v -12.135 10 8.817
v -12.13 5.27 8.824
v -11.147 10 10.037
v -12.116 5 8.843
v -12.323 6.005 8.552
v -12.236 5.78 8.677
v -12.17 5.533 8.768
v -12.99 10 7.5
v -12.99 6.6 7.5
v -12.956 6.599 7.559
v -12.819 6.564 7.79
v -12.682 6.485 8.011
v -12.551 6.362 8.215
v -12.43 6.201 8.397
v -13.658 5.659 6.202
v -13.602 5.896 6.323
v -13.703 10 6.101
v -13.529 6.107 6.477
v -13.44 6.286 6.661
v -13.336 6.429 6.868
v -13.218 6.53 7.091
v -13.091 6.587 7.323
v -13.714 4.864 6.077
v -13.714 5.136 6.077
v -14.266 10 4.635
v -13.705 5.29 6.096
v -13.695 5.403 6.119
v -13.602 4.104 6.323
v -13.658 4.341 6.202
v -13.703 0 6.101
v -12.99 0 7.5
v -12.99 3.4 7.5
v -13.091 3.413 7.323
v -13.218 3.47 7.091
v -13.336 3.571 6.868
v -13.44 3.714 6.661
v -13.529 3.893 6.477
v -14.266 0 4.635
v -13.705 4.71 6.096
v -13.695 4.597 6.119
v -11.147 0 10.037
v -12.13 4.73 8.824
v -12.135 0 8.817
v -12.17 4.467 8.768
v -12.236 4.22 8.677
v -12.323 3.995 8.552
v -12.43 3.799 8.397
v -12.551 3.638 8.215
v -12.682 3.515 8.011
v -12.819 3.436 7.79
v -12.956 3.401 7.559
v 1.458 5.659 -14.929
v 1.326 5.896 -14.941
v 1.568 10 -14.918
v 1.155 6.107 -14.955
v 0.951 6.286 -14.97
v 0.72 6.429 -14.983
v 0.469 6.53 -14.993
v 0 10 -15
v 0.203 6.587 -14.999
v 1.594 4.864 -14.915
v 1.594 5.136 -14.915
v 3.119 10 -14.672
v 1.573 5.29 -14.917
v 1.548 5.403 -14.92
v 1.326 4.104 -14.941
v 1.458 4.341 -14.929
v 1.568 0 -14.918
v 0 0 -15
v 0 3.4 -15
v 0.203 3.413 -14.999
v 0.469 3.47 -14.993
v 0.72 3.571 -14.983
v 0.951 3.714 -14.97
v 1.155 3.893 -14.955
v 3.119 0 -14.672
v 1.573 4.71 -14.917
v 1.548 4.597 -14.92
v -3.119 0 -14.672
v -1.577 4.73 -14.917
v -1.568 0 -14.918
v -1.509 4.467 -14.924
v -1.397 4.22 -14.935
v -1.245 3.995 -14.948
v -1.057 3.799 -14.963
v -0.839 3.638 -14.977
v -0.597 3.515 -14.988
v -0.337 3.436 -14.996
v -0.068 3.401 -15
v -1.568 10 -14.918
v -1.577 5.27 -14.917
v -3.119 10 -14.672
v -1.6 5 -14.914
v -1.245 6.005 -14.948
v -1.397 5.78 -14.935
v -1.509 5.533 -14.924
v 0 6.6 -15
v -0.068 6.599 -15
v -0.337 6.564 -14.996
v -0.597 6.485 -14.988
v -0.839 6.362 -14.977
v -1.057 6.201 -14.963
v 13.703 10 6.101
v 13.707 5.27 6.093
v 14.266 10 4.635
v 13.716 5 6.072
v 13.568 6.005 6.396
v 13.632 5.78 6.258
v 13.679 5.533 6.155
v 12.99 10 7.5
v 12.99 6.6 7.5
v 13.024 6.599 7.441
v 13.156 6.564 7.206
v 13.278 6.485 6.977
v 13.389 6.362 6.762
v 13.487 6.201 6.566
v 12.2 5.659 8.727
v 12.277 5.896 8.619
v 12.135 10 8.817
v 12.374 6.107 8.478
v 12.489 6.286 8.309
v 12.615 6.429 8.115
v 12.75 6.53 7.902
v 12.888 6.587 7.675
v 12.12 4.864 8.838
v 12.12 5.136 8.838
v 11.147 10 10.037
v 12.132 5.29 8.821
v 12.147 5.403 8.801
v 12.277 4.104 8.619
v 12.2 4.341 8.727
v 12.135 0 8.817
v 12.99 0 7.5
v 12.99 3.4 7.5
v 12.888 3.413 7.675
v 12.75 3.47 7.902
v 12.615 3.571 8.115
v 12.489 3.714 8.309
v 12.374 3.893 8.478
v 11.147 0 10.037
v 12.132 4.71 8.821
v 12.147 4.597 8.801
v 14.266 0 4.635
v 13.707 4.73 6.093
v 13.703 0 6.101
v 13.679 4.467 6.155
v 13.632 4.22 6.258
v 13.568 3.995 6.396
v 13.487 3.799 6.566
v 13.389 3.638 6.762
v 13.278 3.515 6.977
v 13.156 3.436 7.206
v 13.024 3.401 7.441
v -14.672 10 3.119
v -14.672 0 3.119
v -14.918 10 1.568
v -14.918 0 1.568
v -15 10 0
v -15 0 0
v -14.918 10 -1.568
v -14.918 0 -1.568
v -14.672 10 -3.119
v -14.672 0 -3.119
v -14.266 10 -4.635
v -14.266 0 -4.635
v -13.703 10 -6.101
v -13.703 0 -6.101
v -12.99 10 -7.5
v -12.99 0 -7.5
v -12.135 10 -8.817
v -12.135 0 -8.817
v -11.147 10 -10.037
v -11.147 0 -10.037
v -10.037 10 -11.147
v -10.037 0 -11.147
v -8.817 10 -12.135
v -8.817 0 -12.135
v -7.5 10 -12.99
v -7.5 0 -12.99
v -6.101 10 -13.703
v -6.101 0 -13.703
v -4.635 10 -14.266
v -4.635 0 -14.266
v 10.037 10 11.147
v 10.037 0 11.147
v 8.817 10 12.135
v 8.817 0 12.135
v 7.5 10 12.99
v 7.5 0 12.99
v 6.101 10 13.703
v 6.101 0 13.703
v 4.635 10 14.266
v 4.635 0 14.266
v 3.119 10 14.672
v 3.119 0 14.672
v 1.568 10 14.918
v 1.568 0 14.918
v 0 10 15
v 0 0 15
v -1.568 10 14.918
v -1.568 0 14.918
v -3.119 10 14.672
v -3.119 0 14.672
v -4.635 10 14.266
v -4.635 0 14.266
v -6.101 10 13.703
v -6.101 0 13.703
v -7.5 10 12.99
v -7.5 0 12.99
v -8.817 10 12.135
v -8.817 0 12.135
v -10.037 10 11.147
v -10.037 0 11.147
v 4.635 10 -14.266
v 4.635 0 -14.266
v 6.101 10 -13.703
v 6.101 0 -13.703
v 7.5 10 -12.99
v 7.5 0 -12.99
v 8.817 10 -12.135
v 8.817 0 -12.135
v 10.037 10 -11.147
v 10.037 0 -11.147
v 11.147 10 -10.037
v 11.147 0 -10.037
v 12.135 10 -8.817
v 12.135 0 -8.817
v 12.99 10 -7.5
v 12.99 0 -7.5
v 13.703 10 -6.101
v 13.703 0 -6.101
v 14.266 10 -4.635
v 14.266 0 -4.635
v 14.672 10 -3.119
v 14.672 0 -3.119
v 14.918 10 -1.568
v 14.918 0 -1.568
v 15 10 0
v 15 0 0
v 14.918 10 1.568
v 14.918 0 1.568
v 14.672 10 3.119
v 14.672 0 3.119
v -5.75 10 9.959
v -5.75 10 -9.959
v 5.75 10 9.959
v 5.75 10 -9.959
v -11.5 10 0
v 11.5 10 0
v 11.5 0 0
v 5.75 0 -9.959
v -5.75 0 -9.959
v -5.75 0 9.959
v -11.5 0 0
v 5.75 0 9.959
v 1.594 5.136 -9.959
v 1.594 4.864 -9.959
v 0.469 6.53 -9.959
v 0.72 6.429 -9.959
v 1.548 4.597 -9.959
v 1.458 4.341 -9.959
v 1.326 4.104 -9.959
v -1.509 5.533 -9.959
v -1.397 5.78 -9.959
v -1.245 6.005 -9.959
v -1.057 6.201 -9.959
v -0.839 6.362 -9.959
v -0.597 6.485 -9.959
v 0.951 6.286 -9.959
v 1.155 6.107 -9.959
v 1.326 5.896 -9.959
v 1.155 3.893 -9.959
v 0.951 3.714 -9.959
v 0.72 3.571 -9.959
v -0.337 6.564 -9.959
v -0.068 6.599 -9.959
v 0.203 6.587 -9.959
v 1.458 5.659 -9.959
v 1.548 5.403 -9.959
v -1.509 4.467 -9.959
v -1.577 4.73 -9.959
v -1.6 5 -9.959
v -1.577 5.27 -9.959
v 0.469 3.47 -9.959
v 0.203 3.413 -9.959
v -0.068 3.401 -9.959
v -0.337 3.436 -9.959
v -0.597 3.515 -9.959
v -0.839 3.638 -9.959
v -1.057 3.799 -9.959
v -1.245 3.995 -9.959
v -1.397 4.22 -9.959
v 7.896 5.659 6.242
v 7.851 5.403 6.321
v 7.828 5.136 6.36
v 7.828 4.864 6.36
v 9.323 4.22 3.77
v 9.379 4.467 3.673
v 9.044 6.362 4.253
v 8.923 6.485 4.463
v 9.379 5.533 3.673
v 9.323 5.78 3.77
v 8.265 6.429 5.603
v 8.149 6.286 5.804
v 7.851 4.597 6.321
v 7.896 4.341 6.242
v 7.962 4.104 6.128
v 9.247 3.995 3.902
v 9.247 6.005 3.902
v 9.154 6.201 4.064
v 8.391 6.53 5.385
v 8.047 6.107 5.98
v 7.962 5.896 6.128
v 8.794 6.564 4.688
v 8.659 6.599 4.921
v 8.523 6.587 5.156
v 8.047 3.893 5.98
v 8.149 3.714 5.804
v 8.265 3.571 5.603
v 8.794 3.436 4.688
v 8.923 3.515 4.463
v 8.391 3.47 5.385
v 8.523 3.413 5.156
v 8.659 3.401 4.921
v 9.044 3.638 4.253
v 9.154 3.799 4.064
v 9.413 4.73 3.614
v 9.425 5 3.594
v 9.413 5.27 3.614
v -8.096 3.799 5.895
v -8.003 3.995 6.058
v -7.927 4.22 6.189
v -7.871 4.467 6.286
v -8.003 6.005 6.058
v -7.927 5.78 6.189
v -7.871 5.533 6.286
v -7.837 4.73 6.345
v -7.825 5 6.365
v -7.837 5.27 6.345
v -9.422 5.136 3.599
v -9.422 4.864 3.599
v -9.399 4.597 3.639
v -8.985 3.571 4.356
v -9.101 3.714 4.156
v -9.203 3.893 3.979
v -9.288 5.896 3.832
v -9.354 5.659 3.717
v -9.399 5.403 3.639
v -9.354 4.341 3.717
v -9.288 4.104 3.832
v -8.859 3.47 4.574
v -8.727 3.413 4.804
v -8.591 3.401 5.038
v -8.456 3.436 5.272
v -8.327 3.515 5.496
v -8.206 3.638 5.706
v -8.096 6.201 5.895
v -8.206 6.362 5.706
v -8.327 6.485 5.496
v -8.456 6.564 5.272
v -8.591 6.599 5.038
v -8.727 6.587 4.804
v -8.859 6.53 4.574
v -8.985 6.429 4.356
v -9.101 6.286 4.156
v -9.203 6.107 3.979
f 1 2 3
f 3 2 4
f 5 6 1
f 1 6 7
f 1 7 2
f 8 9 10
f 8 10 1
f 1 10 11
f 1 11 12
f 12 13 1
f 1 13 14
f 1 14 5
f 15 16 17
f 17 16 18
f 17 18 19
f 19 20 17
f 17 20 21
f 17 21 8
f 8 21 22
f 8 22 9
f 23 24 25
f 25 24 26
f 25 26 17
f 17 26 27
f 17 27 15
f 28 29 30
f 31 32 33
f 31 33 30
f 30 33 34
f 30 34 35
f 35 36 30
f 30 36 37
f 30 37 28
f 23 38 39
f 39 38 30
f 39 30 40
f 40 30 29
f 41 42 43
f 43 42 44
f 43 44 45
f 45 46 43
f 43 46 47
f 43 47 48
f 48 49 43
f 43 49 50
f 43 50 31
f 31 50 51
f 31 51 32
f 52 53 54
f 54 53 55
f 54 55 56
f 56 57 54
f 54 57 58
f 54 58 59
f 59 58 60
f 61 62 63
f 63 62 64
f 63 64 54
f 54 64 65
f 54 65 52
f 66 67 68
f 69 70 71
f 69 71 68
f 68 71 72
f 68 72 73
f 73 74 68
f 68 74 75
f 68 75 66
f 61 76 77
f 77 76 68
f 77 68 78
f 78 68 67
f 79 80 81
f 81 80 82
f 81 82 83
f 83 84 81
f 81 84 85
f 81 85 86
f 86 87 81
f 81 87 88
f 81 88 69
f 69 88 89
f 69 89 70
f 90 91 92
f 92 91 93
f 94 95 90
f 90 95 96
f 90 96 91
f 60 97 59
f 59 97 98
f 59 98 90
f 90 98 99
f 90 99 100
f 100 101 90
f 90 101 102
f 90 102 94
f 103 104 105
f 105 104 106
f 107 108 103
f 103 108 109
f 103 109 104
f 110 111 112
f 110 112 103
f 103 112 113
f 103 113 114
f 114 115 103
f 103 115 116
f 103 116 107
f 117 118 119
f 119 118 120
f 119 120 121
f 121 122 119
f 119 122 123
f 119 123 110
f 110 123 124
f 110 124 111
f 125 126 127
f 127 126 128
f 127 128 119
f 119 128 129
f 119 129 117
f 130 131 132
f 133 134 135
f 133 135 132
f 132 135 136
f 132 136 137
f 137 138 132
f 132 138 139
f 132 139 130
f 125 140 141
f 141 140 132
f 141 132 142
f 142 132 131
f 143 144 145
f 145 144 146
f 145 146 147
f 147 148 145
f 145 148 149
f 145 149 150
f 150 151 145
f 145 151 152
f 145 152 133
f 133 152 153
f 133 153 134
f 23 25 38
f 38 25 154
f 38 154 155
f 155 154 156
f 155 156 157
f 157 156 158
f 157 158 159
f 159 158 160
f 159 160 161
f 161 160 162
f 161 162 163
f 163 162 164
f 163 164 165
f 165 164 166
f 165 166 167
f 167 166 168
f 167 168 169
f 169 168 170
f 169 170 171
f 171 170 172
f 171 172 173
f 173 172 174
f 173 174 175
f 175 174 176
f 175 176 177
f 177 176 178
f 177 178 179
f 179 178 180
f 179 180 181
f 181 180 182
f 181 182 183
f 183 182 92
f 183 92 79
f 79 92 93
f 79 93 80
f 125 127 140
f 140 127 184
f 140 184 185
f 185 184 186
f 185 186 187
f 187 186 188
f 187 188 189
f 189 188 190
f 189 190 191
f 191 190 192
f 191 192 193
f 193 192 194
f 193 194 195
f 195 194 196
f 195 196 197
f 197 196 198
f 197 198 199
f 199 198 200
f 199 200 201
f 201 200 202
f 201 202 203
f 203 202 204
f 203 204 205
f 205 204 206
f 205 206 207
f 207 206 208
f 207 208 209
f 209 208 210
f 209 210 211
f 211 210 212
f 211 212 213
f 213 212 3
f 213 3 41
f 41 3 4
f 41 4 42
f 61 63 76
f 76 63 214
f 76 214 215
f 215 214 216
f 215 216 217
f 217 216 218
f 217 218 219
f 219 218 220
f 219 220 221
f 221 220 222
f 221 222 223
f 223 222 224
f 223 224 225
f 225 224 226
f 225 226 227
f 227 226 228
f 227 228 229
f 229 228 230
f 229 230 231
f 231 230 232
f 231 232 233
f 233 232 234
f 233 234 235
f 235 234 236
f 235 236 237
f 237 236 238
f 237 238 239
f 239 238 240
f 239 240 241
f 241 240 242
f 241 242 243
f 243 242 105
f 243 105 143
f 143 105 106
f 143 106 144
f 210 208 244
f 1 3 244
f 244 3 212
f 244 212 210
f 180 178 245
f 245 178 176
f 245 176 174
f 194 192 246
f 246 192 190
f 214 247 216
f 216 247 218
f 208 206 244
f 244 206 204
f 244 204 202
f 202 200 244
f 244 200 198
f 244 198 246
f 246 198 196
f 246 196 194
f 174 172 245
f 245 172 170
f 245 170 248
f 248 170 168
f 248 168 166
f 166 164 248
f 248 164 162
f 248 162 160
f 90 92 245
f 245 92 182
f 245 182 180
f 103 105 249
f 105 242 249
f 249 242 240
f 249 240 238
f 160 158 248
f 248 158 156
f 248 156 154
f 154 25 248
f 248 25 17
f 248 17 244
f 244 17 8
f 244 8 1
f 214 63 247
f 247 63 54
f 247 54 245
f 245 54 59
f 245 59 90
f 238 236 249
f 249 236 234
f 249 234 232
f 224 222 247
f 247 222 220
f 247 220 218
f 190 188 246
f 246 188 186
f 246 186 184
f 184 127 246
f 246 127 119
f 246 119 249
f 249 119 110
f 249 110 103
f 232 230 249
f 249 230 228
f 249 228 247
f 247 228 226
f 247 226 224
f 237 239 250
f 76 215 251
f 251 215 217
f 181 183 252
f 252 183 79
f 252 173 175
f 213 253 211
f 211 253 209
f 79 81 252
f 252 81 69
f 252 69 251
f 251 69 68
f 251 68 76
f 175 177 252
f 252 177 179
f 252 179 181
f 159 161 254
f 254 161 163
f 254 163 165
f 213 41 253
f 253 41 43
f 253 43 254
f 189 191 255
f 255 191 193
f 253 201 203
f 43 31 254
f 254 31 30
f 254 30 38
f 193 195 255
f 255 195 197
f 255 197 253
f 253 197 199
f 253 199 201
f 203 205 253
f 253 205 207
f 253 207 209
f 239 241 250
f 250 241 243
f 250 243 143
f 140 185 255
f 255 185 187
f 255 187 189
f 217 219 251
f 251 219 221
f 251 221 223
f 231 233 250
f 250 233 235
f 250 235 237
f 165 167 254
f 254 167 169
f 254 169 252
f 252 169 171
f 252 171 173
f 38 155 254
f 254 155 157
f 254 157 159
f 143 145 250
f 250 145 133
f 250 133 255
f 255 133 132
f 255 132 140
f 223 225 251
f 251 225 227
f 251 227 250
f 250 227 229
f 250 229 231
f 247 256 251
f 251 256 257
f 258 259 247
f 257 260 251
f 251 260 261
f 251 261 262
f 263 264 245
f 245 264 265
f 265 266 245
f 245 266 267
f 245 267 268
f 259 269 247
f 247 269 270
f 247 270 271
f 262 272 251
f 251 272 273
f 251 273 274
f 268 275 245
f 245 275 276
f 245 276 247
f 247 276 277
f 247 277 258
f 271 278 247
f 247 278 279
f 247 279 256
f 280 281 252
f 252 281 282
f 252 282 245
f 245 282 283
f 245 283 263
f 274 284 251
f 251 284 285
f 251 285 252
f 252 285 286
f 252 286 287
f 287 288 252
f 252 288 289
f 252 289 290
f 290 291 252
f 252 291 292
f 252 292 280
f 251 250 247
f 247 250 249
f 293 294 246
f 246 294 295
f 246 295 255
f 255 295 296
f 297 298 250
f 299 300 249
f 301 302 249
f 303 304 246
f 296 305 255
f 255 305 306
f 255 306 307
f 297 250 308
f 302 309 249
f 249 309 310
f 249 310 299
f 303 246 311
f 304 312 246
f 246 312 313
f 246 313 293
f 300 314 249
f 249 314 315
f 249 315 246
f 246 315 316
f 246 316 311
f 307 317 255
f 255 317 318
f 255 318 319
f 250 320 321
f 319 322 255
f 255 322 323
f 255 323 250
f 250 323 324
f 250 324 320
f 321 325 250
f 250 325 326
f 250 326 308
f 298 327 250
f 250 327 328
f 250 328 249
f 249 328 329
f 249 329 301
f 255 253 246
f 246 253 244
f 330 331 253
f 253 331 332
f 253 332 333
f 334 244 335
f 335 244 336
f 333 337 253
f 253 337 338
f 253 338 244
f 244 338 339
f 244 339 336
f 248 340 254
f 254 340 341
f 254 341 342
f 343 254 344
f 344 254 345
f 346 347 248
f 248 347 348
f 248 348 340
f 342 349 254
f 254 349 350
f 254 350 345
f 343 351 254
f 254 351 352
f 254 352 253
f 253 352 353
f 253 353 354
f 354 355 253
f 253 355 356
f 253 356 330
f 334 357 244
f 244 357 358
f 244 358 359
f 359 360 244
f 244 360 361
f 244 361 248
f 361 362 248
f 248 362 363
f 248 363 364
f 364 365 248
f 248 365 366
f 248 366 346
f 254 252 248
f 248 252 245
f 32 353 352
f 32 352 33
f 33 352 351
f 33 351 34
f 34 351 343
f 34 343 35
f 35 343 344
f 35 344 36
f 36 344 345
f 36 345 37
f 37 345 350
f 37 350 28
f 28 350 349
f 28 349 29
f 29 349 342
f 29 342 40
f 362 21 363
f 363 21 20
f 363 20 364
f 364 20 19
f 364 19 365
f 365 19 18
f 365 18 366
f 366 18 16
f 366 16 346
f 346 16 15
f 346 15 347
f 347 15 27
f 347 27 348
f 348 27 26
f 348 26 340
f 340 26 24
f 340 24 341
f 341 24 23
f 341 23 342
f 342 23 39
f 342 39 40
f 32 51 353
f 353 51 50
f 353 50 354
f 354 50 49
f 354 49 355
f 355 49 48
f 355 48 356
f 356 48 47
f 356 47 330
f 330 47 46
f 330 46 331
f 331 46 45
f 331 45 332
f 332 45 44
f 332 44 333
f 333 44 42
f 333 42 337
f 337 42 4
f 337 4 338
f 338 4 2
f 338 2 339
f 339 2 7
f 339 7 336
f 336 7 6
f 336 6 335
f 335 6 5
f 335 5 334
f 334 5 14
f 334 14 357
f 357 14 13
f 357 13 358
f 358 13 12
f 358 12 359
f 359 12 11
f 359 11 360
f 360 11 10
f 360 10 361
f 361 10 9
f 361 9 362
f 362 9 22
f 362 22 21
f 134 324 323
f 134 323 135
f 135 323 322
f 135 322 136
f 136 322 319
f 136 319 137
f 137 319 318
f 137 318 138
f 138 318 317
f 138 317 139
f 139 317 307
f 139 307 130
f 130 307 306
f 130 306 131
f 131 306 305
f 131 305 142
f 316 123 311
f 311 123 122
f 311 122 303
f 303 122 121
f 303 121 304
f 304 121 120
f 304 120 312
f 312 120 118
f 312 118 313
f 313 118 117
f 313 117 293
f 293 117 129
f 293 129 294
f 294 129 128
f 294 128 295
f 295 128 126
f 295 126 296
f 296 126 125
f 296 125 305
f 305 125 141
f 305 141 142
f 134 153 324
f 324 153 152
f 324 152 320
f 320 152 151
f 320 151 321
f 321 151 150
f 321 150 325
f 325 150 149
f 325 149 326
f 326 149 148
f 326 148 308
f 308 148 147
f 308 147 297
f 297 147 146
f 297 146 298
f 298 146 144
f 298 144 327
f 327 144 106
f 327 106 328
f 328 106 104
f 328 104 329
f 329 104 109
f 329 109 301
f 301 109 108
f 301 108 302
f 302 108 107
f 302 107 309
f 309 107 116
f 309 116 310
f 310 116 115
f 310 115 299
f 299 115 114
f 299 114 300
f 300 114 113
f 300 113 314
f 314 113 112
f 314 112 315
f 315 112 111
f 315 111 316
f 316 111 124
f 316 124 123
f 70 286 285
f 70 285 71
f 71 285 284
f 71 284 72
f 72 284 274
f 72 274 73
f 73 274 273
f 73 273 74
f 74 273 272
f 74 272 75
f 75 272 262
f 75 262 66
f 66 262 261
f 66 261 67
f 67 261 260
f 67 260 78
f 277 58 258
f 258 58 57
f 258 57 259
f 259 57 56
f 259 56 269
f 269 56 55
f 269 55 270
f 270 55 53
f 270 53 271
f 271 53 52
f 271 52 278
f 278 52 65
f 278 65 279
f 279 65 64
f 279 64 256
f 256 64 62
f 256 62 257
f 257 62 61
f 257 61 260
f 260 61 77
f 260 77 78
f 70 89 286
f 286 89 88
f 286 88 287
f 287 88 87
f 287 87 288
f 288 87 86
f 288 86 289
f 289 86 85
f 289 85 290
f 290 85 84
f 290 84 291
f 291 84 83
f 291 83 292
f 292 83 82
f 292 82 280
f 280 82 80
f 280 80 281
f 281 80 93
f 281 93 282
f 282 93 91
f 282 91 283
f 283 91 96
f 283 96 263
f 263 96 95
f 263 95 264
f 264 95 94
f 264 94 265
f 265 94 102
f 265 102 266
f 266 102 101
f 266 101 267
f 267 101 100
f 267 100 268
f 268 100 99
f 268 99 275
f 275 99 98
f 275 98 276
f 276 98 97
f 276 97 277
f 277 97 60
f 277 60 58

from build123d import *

# Parameters (mm, degrees)
SKETCH1_R           = 15
BOSS_EXTRUDE1_DEPTH = 10
CUT_EXTRUDE1_DEPTH  = 24.452078799
SKETCH4_R           = 1.6
CUT_EXTRUDE2_DEPTH  = 10
CIRPATTERN2_COUNT   = 3


with BuildPart() as part:
    # Sketch1 → Boss-Extrude1 (new body)
    with BuildSketch(Plane(origin=(0, 0, 0), x_dir=(1, 0, 0), z_dir=(0, 1, 0))):
        with Locations(Location((0, 0, 0), (0, 0, 270))):
            Circle(SKETCH1_R)
    extrude(amount=BOSS_EXTRUDE1_DEPTH)

    # Sketch2 → Cut-Extrude1 (cut, through all)
    with BuildSketch(Plane(origin=(0, 10, 0), x_dir=(1, 0, 0), z_dir=(0, 1, 0))):
        Polygon((11.5, 0), (5.75, 9.959292144), (-5.75, 9.959292144), (-11.5, 0), (-5.75, -9.959292144), (5.75, -9.959292144), align=None)
    extrude(amount=-CUT_EXTRUDE1_DEPTH, mode=Mode.SUBTRACT)

    # Sketch4 → Cut-Extrude2 (cut)
    with BuildSketch(Plane(origin=(-12.990381057, 0, 7.5), x_dir=(0.5000000000000002, 0, 0.8660254037844386), z_dir=(-0.8660254037844385, 0, 0.5000000000000001))):
        with Locations((0, 5)):
            Circle(SKETCH4_R)
    cut_extrude2 = extrude(amount=-CUT_EXTRUDE2_DEPTH, mode=Mode.SUBTRACT)

    # CirPattern2: Cut-Extrude2 ×3 about axis
    cirpattern2_axis = Axis((0, 10, 0), (0, -1, 0))
    for i in range(1, CIRPATTERN2_COUNT):
        add(cut_extrude2.rotate(cirpattern2_axis, i * 360 / CIRPATTERN2_COUNT), mode=Mode.SUBTRACT)


solid = part.part
